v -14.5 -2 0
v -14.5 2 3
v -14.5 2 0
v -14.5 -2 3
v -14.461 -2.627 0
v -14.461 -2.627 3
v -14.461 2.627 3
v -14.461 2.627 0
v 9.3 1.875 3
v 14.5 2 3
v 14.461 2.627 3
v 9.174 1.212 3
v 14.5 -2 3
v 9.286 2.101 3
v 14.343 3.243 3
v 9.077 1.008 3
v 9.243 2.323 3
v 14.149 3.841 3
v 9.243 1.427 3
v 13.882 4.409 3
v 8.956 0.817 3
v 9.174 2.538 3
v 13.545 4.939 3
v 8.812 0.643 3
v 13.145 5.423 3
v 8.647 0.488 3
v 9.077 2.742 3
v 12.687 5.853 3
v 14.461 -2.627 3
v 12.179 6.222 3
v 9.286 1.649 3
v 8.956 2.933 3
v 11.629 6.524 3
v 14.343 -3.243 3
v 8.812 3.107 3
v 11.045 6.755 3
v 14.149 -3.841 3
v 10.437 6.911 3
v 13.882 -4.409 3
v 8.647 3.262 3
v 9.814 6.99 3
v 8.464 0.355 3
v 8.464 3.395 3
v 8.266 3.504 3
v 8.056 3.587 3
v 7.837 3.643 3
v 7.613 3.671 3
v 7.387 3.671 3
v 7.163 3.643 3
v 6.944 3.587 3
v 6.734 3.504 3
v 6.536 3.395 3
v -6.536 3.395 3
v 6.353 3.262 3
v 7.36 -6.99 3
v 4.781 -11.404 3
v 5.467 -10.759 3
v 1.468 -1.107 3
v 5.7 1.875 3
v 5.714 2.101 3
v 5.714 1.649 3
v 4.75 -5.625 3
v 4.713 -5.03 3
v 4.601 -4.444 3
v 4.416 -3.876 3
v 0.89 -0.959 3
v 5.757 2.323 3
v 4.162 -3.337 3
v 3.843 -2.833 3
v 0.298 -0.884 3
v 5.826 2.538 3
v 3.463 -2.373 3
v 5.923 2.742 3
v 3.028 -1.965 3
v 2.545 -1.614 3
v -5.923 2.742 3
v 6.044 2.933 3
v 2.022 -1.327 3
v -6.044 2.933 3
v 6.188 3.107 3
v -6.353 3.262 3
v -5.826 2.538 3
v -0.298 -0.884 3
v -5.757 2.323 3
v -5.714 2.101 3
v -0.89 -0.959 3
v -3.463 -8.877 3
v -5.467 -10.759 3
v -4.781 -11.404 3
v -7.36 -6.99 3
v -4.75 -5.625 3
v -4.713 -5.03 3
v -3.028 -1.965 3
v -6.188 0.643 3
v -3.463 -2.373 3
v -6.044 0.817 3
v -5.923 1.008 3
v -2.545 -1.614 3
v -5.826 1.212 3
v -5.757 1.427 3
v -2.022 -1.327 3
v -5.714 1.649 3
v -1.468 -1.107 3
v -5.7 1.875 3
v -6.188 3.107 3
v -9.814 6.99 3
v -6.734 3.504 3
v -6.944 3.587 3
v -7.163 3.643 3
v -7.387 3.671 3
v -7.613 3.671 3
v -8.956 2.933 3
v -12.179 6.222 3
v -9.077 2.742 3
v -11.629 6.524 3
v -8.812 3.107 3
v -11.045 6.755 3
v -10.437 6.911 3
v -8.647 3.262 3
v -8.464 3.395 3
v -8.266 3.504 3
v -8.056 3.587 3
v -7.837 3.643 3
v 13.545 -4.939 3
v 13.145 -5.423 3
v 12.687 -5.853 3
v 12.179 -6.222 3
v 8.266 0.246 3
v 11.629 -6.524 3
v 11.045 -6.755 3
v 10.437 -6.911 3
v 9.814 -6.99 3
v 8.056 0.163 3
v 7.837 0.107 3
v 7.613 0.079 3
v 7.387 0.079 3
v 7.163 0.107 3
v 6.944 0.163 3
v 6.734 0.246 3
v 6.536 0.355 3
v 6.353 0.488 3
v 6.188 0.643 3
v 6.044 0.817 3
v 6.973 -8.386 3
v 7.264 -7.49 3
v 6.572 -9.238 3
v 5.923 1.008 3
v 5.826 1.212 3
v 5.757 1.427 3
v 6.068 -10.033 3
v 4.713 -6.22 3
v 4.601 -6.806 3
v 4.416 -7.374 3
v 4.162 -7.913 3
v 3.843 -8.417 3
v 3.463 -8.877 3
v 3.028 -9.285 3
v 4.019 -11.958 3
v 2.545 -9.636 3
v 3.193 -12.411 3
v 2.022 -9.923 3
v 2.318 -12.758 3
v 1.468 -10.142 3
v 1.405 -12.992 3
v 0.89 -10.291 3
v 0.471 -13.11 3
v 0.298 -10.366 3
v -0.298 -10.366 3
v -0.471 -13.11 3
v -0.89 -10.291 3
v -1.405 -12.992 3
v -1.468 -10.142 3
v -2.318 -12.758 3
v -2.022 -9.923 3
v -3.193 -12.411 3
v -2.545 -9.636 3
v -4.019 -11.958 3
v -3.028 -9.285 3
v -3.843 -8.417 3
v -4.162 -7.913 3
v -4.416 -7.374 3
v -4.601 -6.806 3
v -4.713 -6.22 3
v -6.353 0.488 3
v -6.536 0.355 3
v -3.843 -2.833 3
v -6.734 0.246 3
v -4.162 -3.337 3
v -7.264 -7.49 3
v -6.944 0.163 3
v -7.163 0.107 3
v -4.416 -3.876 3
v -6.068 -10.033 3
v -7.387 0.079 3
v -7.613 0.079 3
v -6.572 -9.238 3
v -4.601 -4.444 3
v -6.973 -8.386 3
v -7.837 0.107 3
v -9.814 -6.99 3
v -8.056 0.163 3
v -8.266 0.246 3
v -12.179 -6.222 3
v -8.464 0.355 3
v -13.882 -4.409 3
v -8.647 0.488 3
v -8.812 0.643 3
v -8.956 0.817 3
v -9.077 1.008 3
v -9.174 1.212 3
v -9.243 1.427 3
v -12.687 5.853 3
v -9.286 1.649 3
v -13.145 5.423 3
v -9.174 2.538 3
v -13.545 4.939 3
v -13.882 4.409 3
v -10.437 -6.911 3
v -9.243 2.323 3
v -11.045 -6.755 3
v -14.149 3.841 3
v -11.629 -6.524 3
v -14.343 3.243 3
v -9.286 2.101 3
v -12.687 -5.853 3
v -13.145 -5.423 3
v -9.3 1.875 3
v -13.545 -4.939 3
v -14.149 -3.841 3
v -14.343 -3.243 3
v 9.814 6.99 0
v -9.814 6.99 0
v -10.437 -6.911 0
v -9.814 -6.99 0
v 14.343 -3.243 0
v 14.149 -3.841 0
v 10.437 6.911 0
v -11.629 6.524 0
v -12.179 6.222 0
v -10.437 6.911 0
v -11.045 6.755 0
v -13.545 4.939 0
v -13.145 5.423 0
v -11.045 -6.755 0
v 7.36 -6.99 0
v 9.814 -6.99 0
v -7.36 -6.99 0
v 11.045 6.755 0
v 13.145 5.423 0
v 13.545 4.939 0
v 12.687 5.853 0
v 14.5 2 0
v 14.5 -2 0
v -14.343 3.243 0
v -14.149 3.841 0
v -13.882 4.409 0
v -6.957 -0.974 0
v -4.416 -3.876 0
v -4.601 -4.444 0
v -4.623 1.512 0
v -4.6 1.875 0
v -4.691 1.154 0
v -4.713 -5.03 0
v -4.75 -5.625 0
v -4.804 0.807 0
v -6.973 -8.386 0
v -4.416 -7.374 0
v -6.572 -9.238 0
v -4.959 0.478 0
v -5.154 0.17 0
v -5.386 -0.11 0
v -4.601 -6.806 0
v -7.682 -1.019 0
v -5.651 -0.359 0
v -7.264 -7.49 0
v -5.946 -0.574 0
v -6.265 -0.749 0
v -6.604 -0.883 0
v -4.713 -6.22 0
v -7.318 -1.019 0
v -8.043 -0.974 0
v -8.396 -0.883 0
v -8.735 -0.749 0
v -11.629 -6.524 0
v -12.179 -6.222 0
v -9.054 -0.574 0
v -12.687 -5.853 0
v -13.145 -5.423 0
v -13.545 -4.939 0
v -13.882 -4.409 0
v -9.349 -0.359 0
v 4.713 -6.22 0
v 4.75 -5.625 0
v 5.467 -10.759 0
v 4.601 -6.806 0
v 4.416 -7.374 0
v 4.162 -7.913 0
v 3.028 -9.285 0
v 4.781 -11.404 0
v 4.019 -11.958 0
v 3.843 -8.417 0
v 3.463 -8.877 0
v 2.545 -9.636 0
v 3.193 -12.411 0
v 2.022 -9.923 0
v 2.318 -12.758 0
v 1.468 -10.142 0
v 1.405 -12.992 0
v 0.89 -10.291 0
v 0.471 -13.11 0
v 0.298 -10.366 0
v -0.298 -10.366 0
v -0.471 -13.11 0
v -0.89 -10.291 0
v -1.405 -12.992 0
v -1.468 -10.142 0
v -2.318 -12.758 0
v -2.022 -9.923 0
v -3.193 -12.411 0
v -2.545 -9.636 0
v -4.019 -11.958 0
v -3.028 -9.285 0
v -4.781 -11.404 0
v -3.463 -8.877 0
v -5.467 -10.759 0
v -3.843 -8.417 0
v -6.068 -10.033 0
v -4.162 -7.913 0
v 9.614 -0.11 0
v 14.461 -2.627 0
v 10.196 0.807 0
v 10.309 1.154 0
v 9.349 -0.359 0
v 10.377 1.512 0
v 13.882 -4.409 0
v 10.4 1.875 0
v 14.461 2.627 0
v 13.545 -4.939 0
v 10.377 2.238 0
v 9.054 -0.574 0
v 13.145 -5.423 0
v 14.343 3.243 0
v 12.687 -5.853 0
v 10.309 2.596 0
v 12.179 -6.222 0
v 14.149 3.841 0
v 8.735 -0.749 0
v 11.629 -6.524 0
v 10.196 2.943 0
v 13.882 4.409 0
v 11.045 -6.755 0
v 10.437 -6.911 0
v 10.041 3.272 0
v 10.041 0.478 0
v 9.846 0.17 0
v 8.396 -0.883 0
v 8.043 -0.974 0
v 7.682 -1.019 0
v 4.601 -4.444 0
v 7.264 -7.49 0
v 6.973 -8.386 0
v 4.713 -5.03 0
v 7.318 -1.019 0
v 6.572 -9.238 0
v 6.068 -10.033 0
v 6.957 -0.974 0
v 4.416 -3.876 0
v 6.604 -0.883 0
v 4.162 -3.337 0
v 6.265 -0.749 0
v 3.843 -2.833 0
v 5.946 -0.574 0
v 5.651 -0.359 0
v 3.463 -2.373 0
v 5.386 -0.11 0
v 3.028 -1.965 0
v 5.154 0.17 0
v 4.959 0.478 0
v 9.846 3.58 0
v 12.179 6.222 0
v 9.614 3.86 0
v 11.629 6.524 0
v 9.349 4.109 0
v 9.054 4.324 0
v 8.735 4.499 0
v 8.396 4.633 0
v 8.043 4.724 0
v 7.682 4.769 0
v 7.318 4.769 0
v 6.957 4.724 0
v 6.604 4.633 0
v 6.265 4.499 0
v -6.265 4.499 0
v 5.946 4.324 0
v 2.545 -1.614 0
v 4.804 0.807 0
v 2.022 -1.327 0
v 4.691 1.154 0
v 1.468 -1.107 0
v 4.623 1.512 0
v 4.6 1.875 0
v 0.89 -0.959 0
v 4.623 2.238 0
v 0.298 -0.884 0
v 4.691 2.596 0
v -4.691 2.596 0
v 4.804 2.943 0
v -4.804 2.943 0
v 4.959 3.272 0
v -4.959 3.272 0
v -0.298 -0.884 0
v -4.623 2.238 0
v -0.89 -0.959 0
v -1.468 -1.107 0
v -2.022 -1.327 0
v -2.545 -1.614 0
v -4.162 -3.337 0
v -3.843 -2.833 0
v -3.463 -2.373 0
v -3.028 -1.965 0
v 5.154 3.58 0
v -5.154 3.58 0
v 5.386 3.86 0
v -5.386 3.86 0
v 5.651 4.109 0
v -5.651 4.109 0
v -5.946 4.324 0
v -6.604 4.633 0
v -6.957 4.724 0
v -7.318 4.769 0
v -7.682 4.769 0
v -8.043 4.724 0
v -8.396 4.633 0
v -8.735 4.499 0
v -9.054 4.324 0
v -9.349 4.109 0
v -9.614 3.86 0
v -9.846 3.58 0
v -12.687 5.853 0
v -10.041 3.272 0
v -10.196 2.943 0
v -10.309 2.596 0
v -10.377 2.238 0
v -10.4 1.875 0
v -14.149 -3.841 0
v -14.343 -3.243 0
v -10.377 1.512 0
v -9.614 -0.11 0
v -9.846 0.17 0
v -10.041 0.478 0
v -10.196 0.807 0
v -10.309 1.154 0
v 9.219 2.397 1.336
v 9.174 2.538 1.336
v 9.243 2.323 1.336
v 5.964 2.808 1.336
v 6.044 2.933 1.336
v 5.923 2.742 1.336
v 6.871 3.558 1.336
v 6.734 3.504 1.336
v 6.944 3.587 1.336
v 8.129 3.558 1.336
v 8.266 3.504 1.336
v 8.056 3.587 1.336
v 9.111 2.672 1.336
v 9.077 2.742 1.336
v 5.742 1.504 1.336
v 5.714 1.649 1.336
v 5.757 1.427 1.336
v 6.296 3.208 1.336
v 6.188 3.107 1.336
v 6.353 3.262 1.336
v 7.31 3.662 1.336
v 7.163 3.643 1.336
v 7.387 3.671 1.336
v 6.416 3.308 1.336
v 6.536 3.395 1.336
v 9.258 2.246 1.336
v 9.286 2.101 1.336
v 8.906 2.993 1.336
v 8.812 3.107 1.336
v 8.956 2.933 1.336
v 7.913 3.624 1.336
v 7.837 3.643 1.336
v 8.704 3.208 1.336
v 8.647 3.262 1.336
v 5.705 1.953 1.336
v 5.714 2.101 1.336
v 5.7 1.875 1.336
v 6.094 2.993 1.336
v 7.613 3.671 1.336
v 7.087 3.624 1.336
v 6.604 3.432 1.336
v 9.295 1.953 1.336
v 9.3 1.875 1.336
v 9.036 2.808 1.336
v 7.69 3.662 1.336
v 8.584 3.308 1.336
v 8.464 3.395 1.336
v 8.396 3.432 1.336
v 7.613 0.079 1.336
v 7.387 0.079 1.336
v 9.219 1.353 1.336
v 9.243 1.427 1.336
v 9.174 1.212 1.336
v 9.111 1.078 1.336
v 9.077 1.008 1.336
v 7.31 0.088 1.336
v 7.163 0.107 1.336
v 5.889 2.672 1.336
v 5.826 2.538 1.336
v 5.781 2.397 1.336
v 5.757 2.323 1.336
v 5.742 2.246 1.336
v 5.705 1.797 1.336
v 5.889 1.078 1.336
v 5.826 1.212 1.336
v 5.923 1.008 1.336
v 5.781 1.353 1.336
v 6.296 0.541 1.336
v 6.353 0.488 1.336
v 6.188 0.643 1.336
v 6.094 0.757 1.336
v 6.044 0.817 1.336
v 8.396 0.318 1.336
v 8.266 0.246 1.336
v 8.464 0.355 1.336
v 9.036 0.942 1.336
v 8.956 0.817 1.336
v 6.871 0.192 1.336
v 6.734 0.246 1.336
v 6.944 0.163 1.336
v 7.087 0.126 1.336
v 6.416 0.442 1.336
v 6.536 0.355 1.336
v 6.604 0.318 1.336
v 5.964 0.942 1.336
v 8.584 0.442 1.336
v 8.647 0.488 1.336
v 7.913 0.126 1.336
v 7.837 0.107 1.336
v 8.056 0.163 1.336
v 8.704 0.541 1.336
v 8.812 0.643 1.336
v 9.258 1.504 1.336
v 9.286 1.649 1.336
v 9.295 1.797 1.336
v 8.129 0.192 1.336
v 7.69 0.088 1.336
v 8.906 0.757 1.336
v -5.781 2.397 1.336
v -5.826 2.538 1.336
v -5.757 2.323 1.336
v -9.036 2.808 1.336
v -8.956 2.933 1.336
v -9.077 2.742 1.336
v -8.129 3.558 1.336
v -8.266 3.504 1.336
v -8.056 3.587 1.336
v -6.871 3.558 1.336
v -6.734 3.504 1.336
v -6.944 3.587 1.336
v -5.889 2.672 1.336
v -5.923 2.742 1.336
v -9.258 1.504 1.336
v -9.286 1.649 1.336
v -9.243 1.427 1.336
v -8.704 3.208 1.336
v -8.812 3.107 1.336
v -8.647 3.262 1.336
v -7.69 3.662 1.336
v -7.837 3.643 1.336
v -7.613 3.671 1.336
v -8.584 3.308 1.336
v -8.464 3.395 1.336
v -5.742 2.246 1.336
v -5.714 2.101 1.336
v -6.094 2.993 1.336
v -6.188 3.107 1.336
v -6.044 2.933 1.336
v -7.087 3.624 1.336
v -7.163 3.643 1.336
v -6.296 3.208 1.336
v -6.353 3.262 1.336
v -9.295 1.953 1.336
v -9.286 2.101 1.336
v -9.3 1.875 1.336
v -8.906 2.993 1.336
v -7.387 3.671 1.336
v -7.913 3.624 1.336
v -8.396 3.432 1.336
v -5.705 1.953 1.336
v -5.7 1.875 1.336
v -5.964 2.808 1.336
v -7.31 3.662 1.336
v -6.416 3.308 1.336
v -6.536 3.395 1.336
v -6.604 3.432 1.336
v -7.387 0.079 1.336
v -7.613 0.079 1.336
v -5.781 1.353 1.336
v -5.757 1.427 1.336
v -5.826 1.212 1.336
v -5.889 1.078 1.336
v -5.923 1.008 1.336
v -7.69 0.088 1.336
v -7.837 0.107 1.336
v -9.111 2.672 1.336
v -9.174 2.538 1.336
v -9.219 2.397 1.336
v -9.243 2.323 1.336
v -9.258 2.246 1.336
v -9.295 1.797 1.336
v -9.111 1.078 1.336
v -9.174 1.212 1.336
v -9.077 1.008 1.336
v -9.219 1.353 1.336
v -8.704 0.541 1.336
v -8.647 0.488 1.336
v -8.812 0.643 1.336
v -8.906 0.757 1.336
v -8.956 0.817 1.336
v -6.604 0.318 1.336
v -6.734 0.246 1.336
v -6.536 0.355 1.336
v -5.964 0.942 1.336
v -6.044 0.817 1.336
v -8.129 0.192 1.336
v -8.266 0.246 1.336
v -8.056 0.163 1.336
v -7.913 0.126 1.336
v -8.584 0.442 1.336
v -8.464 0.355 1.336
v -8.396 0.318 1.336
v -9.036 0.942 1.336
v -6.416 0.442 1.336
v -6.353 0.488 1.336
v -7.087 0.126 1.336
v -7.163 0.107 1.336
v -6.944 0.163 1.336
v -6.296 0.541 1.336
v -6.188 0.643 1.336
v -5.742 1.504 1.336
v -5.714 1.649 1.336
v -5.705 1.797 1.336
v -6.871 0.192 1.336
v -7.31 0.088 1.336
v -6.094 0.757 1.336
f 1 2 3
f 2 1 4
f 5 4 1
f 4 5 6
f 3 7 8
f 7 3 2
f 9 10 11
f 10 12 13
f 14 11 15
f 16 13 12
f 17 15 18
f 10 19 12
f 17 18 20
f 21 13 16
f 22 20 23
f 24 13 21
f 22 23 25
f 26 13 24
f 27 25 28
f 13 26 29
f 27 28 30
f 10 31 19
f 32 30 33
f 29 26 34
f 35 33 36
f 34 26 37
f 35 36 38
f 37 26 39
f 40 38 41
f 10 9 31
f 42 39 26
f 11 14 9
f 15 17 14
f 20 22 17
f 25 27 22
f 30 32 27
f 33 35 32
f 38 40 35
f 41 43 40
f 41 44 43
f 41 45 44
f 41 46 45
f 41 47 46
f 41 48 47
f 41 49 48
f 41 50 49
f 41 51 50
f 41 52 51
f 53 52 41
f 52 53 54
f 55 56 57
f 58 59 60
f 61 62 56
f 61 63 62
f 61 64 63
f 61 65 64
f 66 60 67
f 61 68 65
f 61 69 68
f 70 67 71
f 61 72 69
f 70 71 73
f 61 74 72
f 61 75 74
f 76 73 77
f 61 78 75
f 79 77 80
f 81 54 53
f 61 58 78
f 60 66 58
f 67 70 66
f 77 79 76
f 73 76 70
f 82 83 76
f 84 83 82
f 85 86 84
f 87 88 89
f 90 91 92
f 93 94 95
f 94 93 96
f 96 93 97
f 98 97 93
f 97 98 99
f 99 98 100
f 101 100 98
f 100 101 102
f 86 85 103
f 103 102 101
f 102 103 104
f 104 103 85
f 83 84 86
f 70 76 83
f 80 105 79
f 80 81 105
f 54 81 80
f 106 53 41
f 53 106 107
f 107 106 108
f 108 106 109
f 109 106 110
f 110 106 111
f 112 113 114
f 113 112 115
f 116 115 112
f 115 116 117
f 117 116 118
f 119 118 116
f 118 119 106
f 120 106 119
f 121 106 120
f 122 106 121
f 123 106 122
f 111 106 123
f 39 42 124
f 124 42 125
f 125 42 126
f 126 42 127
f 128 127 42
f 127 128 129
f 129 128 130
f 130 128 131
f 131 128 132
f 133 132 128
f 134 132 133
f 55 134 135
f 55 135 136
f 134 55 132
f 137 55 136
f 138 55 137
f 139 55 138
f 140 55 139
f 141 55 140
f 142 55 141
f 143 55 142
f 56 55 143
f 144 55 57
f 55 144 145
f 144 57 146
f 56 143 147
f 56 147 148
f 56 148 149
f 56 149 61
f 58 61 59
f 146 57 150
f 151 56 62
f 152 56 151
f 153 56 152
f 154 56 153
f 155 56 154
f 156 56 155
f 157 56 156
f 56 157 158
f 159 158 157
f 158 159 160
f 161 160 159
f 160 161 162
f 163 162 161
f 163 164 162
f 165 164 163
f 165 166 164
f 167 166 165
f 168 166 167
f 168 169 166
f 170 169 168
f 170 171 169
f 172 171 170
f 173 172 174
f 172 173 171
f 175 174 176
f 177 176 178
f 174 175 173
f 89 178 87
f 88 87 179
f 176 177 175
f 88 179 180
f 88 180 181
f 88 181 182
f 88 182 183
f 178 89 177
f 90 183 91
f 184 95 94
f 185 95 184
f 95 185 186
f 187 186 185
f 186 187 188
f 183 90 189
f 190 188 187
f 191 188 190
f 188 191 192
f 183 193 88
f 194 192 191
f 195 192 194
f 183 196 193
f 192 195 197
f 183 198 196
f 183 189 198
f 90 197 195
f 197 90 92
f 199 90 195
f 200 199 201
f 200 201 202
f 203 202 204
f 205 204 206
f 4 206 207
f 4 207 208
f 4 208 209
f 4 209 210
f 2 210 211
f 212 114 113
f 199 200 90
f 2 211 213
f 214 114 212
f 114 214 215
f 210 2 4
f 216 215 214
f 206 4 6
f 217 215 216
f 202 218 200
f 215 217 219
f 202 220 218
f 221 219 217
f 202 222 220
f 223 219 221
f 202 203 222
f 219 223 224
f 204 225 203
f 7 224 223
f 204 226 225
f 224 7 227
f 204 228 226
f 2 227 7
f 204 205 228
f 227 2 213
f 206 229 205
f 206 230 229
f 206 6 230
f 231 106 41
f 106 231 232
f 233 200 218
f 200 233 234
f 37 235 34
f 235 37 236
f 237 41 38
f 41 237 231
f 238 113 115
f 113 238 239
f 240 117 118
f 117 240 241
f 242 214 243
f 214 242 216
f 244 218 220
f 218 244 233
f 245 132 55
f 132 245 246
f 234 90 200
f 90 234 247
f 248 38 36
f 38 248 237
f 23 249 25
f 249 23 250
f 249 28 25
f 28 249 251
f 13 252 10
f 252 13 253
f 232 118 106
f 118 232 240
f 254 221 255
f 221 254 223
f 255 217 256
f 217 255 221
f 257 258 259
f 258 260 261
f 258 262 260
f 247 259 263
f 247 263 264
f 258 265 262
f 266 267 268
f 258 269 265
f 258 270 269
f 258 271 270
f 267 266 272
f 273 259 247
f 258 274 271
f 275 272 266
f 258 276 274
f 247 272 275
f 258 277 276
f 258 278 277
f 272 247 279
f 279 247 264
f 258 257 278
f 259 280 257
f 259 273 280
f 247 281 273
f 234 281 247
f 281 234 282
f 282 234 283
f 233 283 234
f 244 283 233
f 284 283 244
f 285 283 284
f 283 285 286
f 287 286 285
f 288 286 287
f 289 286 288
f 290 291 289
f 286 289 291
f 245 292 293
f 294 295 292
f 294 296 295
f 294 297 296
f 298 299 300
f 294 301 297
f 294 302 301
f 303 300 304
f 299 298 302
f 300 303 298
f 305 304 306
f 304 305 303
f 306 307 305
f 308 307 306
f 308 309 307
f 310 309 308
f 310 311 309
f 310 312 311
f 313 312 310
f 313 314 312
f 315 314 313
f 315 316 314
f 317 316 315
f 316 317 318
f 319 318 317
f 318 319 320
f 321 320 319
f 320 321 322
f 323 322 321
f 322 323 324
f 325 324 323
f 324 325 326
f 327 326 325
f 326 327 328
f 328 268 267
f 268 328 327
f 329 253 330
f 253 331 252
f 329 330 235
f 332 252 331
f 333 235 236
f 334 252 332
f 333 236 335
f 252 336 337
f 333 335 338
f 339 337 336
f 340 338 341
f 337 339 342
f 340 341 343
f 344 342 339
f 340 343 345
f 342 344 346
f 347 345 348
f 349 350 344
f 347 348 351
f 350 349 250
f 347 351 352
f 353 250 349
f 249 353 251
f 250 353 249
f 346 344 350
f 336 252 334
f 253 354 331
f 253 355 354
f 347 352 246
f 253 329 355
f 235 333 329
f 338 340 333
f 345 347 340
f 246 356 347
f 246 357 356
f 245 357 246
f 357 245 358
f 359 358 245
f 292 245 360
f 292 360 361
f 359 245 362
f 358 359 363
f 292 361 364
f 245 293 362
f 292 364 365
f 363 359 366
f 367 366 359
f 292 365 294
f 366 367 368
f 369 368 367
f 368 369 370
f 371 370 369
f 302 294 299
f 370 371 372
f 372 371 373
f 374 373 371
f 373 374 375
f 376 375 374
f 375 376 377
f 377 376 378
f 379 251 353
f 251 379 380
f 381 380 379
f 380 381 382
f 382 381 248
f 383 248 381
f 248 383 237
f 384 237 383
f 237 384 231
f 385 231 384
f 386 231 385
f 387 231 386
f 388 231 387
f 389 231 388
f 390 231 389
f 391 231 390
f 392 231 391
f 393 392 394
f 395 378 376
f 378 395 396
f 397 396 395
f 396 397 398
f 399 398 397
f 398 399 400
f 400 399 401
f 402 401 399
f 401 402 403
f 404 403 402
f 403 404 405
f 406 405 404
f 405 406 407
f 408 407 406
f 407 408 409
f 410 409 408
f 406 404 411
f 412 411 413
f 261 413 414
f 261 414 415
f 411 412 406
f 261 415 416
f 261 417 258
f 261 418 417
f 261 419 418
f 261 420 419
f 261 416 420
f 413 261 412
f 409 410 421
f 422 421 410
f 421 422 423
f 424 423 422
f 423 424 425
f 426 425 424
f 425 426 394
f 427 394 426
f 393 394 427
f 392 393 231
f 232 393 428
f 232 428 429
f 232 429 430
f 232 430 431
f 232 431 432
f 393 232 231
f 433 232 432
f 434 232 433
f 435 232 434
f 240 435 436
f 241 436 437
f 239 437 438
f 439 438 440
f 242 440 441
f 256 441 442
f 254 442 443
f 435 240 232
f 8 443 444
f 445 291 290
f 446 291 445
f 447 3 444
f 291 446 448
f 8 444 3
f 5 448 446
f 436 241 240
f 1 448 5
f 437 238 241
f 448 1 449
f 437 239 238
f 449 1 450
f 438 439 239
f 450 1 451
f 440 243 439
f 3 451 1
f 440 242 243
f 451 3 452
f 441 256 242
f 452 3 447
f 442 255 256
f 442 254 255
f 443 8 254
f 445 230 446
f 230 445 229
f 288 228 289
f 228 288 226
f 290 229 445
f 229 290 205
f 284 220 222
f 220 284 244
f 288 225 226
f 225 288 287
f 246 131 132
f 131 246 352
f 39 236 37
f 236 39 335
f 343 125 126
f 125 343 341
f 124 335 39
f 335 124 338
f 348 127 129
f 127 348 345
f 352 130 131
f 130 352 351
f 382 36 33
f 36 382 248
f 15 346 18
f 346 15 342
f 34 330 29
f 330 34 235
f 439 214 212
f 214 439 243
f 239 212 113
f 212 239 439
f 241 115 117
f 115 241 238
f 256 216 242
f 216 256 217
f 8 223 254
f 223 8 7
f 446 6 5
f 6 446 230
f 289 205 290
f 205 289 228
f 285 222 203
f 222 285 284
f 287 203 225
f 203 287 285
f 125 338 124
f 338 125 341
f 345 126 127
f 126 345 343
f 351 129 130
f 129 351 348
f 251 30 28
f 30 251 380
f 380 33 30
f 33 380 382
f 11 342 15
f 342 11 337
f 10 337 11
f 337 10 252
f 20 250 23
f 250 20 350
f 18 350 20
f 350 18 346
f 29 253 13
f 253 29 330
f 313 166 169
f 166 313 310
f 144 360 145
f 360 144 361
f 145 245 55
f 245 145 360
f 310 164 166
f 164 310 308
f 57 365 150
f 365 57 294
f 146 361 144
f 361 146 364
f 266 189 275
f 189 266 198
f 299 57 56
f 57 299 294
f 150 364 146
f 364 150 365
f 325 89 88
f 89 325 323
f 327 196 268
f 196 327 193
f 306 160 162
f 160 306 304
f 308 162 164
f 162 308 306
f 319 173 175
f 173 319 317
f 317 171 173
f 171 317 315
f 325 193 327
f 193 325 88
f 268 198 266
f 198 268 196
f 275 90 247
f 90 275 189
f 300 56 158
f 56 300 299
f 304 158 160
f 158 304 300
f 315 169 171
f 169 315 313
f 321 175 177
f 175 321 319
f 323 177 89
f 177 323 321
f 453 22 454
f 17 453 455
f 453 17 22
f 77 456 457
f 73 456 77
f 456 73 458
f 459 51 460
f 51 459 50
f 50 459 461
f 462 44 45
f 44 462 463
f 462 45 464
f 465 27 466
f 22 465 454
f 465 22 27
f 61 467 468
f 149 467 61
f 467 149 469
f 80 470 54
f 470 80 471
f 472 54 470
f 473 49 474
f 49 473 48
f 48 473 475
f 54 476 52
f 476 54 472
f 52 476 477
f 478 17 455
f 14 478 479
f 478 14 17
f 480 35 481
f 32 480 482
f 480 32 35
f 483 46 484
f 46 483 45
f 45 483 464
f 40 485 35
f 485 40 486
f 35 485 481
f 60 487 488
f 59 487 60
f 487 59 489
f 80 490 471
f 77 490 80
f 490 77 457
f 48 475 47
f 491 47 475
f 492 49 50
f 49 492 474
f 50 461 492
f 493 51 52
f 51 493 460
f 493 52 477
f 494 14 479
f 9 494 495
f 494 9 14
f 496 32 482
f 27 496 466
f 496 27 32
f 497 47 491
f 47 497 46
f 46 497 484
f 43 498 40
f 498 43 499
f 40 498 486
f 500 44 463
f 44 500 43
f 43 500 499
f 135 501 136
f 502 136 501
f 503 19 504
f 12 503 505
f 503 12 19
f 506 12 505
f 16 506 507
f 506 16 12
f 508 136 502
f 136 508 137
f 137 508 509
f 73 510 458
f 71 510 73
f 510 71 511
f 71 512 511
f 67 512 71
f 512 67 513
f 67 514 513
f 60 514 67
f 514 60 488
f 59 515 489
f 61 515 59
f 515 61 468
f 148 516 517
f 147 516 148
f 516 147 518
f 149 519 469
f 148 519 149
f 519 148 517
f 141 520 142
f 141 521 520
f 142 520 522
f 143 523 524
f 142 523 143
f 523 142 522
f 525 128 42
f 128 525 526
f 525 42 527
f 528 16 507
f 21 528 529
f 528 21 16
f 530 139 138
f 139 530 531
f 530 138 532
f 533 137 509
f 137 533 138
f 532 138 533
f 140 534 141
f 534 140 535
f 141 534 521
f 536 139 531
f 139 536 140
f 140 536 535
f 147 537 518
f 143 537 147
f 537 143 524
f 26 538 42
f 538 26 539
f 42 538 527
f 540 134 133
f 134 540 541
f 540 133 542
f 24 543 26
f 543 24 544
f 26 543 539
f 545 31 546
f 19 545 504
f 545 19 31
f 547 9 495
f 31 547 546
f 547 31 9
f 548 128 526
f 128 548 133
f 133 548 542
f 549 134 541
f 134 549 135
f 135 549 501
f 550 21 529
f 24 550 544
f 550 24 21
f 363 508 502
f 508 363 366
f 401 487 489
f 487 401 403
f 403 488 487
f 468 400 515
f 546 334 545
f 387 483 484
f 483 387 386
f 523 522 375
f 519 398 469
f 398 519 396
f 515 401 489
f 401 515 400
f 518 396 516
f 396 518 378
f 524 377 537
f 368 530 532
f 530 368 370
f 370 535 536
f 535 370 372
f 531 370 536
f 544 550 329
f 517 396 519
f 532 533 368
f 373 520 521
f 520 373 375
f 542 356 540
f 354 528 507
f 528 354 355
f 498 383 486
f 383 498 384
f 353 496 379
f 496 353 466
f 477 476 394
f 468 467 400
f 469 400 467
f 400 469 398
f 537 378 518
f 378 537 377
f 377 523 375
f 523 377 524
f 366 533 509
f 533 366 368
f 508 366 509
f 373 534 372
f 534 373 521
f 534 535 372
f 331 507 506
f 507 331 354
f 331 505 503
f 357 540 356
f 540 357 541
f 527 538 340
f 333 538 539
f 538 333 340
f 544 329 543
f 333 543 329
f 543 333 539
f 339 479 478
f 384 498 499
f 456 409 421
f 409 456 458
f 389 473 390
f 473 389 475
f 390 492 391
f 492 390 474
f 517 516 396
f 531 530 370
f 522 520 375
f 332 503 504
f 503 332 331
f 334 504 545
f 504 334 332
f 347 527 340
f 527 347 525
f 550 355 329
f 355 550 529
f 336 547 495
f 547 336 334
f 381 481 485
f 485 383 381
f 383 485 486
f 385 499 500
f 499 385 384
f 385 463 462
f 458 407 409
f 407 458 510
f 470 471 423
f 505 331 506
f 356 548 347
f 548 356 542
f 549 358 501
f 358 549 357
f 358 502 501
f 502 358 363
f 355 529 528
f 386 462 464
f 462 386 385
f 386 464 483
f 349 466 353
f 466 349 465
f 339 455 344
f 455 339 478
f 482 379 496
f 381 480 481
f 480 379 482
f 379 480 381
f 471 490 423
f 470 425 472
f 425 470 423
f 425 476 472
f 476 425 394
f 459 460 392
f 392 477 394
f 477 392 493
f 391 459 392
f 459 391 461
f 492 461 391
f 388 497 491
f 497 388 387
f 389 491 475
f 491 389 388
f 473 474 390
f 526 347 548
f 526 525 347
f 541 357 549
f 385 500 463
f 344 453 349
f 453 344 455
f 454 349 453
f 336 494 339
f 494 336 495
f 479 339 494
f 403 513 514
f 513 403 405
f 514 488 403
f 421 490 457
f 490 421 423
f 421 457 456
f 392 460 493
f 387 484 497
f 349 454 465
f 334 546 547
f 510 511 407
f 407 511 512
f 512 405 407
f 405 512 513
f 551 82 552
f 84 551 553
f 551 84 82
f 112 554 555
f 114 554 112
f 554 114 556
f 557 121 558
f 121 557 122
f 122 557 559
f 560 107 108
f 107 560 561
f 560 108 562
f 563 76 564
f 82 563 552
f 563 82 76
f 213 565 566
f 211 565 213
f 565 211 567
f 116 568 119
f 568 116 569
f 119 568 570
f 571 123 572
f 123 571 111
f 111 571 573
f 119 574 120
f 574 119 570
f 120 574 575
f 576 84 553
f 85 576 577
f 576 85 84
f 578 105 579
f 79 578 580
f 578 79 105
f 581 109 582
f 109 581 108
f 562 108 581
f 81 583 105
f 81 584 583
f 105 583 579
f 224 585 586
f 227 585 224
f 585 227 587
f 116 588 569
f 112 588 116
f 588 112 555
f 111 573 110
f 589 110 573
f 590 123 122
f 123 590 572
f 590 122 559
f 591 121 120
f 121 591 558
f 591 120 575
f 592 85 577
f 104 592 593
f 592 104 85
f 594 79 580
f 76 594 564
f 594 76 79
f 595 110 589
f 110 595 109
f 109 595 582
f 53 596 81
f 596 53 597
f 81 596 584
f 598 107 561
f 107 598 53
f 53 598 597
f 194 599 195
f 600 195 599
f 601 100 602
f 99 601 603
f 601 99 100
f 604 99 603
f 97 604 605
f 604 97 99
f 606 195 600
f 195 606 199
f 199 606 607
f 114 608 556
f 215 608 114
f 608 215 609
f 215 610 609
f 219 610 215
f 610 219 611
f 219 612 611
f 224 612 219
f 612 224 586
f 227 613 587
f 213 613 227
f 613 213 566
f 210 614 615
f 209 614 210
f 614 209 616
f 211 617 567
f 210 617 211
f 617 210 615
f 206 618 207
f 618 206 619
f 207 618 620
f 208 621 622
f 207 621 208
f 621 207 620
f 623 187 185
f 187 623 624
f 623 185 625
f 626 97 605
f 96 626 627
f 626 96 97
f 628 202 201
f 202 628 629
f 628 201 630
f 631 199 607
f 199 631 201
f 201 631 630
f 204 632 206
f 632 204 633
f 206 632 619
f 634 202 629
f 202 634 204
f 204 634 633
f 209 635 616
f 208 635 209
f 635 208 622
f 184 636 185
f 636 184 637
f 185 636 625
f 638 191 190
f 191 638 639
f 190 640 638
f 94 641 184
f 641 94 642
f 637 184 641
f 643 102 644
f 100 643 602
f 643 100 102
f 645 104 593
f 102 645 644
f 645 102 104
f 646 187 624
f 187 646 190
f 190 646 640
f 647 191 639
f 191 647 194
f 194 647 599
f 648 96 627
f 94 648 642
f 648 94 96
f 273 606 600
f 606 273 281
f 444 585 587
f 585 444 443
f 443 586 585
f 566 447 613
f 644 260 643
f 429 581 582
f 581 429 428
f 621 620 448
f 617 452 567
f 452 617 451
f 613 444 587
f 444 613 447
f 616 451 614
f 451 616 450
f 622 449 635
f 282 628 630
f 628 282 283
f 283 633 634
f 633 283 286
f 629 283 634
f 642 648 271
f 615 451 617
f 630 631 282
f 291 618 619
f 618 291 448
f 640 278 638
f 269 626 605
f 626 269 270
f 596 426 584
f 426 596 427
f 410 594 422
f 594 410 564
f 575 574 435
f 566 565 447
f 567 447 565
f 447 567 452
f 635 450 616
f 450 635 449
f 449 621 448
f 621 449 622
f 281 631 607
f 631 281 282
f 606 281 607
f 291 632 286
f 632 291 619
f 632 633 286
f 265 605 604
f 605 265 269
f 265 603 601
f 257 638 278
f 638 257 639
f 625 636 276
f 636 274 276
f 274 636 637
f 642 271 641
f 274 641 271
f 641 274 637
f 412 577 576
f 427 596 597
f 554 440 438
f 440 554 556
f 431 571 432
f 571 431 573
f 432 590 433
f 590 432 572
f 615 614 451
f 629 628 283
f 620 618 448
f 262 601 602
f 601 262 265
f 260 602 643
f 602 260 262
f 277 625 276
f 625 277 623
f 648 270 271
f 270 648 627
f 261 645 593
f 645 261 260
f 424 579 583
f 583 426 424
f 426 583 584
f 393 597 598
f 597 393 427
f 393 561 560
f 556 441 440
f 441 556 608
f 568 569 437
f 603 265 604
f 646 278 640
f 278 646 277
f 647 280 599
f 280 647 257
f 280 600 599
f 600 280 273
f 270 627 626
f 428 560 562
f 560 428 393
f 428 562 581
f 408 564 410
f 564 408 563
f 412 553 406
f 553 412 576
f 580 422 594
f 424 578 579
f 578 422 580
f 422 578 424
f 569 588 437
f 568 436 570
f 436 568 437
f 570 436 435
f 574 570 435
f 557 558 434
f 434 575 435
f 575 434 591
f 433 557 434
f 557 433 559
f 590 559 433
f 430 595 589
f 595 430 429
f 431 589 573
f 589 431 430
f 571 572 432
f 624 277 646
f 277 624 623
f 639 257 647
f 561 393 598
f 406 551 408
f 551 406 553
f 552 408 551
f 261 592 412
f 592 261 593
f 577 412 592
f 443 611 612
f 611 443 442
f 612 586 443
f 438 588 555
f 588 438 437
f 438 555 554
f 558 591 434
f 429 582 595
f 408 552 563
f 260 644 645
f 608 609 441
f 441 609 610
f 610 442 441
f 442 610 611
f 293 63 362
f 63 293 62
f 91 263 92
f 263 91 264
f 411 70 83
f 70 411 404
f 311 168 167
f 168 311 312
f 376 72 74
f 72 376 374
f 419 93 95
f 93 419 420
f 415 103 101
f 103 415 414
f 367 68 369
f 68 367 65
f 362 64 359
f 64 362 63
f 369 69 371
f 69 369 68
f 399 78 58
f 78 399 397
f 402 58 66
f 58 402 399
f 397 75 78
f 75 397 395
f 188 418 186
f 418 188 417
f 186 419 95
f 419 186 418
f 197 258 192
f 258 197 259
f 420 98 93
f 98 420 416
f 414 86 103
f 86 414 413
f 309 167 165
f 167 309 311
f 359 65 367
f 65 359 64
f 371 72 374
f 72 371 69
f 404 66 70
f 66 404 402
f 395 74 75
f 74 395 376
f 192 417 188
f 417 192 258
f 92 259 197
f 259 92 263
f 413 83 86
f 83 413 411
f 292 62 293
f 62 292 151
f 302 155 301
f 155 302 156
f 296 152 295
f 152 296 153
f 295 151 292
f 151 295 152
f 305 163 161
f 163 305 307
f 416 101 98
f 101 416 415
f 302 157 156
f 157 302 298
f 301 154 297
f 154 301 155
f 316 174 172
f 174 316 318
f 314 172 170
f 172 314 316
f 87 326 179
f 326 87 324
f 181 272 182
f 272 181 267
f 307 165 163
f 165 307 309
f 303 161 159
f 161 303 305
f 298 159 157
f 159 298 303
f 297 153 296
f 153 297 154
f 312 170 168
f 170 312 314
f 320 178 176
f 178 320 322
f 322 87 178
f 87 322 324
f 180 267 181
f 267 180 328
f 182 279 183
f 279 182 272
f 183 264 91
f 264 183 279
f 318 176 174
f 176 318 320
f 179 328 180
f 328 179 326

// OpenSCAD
$fn = 50;


difference() {
	union() {
		hull() {
			translate(v = [-9.5000000000, 2.0000000000, 0]) {
				cylinder(h = 3, r = 5);
			}
			translate(v = [9.5000000000, 2.0000000000, 0]) {
				cylinder(h = 3, r = 5);
			}
			translate(v = [-9.5000000000, -2.0000000000, 0]) {
				cylinder(h = 3, r = 5);
			}
			translate(v = [9.5000000000, -2.0000000000, 0]) {
				cylinder(h = 3, r = 5);
			}
		}
		translate(v = [0, -5.6250000000, 0.0000000000]) {
			cylinder(h = 3, r = 7.5000000000);
		}
	}
	union() {
		translate(v = [7.5000000000, 1.8750000000, 0]) {
			rotate(a = [0, 180, 0]) {
				difference() {
					union() {
						#translate(v = [0, 0, -3.0000000000]) {
							cylinder(h = 3, r = 1.5000000000);
						}
						#translate(v = [0, 0, -3.0000000000]) {
							cylinder(h = 3, r = 1.8000000000);
						}
						#translate(v = [0, 0, -1.7000000000]) {
							cylinder(h = 1.7000000000, r1 = 1.5000000000, r2 = 2.9000000000);
						}
						#translate(v = [0, 0, -3.0000000000]) {
							cylinder(h = 3, r = 1.5000000000);
						}
					}
					union();
				}
			}
		}
		translate(v = [-7.5000000000, 1.8750000000, 0]) {
			rotate(a = [0, 180, 0]) {
				difference() {
					union() {
						#translate(v = [0, 0, -3.0000000000]) {
							cylinder(h = 3, r = 1.5000000000);
						}
						#translate(v = [0, 0, -3.0000000000]) {
							cylinder(h = 3, r = 1.8000000000);
						}
						#translate(v = [0, 0, -1.7000000000]) {
							cylinder(h = 1.7000000000, r1 = 1.5000000000, r2 = 2.9000000000);
						}
						#translate(v = [0, 0, -3.0000000000]) {
							cylinder(h = 3, r = 1.5000000000);
						}
					}
					union();
				}
			}
		}
		#translate(v = [0, -5.6250000000, 0]) {
			cylinder(h = 3, r = 4.7500000000);
		}
	}
}
